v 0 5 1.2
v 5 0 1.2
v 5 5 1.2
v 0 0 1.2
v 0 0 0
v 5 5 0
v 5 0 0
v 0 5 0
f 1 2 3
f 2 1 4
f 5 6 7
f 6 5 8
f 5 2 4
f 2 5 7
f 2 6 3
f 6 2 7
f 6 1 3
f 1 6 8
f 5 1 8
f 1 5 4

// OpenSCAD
/* Warning, this is a very basic generator with a lot of approximation 
input data : [TQFN, R2B, 5x5x1.2mm, 32, , A, C04-21369A]
generated by com.zoubworld.electronics.cad.model3d.Basic
Date : Sun Feb 15 10:50:49 CET 2026
*/

//body
color("black")
translate([0,0,0])
cube([5.0,5.0,1.2], center=false);
